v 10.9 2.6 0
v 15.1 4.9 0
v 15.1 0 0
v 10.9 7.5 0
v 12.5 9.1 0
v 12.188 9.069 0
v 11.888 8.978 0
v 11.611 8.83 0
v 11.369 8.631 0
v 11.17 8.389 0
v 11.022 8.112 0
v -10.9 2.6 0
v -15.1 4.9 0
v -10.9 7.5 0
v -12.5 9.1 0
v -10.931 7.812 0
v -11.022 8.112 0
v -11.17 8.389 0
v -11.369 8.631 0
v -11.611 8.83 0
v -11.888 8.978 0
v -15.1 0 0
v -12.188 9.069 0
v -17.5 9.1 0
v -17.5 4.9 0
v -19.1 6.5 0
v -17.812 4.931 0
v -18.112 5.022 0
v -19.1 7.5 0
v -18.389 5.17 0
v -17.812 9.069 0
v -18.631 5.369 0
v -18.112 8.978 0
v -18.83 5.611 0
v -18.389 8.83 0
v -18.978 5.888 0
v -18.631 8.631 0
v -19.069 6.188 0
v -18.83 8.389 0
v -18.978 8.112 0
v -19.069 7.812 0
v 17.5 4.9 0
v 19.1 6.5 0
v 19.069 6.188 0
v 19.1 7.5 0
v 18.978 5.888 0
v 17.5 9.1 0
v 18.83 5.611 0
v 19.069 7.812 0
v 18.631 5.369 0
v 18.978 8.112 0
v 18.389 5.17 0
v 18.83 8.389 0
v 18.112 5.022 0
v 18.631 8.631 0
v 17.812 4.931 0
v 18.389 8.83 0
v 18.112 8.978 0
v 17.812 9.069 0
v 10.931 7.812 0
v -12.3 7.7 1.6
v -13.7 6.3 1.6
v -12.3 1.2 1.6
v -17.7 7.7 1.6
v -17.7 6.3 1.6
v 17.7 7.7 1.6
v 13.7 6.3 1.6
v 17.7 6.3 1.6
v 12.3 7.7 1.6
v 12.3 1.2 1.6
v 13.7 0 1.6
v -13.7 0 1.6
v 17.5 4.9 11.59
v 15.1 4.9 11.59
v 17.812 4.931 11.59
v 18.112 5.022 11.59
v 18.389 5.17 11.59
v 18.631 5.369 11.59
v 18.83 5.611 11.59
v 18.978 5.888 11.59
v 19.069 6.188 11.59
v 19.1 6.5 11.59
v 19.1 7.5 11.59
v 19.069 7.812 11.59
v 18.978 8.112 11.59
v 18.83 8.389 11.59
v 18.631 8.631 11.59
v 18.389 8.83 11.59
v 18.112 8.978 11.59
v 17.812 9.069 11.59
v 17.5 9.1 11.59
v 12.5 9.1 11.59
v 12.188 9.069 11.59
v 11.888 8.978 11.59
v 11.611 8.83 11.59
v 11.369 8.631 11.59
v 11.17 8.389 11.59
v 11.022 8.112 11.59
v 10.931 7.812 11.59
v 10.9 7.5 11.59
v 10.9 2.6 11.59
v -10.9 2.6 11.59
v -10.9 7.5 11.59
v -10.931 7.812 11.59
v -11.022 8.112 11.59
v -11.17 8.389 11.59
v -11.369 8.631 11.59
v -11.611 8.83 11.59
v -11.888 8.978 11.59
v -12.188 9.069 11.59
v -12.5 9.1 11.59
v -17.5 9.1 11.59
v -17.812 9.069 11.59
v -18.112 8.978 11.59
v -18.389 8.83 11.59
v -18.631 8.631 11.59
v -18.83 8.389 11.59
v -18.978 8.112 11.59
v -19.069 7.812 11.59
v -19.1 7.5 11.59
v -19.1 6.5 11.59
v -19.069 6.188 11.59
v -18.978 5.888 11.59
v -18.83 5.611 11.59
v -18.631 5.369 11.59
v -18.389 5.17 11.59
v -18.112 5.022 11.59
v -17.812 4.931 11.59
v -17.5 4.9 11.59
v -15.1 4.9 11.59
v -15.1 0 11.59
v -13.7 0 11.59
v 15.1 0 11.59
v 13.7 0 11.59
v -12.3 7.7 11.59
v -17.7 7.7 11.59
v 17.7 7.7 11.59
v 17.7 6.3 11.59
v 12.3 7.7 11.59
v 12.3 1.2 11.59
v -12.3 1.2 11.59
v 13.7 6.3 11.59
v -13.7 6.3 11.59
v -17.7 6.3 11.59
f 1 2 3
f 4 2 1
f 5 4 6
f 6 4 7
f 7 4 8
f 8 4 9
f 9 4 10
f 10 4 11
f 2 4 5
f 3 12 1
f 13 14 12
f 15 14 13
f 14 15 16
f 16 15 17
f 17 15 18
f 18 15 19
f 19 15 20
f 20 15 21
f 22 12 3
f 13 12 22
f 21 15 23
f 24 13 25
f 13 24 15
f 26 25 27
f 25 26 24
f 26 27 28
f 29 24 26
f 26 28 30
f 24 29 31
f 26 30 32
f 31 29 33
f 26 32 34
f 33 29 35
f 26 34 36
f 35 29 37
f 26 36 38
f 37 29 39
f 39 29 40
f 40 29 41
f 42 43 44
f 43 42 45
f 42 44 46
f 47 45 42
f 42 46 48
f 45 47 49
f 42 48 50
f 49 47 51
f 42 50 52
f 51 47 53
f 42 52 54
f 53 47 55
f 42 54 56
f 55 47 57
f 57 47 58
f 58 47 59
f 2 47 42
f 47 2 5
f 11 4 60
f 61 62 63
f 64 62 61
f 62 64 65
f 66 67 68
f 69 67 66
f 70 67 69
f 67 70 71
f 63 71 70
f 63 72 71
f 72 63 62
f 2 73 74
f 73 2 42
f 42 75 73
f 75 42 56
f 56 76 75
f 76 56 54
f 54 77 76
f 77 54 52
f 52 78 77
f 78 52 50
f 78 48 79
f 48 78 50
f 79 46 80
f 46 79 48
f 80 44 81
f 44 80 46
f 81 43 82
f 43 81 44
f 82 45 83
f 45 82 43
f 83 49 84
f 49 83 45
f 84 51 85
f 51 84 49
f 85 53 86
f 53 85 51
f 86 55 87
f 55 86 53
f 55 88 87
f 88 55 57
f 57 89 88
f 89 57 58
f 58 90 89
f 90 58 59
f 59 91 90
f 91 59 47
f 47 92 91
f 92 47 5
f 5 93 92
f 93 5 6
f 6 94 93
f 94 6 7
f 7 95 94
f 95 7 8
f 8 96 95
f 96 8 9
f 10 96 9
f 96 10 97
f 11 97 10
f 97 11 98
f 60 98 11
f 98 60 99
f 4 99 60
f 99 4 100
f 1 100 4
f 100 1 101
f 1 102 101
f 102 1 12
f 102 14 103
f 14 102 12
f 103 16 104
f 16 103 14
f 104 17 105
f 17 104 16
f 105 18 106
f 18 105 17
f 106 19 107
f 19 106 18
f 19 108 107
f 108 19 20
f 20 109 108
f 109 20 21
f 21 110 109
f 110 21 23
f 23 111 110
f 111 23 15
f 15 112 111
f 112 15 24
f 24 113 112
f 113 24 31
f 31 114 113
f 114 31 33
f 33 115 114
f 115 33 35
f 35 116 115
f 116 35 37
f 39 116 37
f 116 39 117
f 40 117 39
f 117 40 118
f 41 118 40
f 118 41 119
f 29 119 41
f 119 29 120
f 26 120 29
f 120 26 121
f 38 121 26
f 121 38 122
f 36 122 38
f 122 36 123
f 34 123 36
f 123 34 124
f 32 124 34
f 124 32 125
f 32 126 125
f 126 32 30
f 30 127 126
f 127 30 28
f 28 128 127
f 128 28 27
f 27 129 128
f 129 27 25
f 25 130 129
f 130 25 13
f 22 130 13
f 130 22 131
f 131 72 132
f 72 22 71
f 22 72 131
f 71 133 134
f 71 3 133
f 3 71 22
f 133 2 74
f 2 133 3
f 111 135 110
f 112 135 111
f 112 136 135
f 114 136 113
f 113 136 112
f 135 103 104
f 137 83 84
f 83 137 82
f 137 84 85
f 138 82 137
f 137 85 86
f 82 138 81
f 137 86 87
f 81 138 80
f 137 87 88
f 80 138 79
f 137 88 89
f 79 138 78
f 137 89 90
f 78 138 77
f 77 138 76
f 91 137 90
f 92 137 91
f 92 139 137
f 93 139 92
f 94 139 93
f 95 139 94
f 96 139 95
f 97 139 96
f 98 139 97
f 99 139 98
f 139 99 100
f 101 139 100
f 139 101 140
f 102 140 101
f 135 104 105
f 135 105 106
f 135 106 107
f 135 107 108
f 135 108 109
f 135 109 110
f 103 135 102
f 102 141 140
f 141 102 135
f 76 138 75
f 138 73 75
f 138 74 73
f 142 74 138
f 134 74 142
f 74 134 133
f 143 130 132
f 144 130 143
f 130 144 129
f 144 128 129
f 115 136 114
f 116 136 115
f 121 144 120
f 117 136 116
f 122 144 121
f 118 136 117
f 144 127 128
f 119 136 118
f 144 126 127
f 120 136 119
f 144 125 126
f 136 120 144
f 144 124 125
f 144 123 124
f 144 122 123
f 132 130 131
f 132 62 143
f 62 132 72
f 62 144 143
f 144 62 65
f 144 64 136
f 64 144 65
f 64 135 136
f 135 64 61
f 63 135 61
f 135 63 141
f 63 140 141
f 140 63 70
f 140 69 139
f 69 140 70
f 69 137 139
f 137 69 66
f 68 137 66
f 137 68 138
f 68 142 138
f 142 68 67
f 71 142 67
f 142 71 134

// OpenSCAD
// End cap for a cut DIN rail TS35 x 7.5 (EN 60715)

rail_t = 1.0;    // rail thickness
clear  = 0.2;    // clearance between rail and cap
wall   = 1.6;
depth  = 10;     // how far the cap reaches over the rail
lid    = 1.6;
$fn = 32;

module profile() {
    translate([-13.5, 0]) square([27, rail_t]);                                // base
    for (s = [-1, 1]) {
        translate([s < 0 ? -13.5 : 13.5 - rail_t, 0]) square([rail_t, 7.5]);   // side wall
        translate([s < 0 ? -17.5 : 13.5, 7.5 - rail_t]) square([4, rail_t]);   // flange
    }
}

module open_bottom() { intersection() { children(); translate([-30, 0]) square([60, 20]); } }

linear_extrude(lid) open_bottom() offset(r = wall) profile();
translate([0, 0, lid - 0.01]) linear_extrude(depth)
    open_bottom() difference() { offset(r = wall) profile(); offset(delta = clear) profile(); }
